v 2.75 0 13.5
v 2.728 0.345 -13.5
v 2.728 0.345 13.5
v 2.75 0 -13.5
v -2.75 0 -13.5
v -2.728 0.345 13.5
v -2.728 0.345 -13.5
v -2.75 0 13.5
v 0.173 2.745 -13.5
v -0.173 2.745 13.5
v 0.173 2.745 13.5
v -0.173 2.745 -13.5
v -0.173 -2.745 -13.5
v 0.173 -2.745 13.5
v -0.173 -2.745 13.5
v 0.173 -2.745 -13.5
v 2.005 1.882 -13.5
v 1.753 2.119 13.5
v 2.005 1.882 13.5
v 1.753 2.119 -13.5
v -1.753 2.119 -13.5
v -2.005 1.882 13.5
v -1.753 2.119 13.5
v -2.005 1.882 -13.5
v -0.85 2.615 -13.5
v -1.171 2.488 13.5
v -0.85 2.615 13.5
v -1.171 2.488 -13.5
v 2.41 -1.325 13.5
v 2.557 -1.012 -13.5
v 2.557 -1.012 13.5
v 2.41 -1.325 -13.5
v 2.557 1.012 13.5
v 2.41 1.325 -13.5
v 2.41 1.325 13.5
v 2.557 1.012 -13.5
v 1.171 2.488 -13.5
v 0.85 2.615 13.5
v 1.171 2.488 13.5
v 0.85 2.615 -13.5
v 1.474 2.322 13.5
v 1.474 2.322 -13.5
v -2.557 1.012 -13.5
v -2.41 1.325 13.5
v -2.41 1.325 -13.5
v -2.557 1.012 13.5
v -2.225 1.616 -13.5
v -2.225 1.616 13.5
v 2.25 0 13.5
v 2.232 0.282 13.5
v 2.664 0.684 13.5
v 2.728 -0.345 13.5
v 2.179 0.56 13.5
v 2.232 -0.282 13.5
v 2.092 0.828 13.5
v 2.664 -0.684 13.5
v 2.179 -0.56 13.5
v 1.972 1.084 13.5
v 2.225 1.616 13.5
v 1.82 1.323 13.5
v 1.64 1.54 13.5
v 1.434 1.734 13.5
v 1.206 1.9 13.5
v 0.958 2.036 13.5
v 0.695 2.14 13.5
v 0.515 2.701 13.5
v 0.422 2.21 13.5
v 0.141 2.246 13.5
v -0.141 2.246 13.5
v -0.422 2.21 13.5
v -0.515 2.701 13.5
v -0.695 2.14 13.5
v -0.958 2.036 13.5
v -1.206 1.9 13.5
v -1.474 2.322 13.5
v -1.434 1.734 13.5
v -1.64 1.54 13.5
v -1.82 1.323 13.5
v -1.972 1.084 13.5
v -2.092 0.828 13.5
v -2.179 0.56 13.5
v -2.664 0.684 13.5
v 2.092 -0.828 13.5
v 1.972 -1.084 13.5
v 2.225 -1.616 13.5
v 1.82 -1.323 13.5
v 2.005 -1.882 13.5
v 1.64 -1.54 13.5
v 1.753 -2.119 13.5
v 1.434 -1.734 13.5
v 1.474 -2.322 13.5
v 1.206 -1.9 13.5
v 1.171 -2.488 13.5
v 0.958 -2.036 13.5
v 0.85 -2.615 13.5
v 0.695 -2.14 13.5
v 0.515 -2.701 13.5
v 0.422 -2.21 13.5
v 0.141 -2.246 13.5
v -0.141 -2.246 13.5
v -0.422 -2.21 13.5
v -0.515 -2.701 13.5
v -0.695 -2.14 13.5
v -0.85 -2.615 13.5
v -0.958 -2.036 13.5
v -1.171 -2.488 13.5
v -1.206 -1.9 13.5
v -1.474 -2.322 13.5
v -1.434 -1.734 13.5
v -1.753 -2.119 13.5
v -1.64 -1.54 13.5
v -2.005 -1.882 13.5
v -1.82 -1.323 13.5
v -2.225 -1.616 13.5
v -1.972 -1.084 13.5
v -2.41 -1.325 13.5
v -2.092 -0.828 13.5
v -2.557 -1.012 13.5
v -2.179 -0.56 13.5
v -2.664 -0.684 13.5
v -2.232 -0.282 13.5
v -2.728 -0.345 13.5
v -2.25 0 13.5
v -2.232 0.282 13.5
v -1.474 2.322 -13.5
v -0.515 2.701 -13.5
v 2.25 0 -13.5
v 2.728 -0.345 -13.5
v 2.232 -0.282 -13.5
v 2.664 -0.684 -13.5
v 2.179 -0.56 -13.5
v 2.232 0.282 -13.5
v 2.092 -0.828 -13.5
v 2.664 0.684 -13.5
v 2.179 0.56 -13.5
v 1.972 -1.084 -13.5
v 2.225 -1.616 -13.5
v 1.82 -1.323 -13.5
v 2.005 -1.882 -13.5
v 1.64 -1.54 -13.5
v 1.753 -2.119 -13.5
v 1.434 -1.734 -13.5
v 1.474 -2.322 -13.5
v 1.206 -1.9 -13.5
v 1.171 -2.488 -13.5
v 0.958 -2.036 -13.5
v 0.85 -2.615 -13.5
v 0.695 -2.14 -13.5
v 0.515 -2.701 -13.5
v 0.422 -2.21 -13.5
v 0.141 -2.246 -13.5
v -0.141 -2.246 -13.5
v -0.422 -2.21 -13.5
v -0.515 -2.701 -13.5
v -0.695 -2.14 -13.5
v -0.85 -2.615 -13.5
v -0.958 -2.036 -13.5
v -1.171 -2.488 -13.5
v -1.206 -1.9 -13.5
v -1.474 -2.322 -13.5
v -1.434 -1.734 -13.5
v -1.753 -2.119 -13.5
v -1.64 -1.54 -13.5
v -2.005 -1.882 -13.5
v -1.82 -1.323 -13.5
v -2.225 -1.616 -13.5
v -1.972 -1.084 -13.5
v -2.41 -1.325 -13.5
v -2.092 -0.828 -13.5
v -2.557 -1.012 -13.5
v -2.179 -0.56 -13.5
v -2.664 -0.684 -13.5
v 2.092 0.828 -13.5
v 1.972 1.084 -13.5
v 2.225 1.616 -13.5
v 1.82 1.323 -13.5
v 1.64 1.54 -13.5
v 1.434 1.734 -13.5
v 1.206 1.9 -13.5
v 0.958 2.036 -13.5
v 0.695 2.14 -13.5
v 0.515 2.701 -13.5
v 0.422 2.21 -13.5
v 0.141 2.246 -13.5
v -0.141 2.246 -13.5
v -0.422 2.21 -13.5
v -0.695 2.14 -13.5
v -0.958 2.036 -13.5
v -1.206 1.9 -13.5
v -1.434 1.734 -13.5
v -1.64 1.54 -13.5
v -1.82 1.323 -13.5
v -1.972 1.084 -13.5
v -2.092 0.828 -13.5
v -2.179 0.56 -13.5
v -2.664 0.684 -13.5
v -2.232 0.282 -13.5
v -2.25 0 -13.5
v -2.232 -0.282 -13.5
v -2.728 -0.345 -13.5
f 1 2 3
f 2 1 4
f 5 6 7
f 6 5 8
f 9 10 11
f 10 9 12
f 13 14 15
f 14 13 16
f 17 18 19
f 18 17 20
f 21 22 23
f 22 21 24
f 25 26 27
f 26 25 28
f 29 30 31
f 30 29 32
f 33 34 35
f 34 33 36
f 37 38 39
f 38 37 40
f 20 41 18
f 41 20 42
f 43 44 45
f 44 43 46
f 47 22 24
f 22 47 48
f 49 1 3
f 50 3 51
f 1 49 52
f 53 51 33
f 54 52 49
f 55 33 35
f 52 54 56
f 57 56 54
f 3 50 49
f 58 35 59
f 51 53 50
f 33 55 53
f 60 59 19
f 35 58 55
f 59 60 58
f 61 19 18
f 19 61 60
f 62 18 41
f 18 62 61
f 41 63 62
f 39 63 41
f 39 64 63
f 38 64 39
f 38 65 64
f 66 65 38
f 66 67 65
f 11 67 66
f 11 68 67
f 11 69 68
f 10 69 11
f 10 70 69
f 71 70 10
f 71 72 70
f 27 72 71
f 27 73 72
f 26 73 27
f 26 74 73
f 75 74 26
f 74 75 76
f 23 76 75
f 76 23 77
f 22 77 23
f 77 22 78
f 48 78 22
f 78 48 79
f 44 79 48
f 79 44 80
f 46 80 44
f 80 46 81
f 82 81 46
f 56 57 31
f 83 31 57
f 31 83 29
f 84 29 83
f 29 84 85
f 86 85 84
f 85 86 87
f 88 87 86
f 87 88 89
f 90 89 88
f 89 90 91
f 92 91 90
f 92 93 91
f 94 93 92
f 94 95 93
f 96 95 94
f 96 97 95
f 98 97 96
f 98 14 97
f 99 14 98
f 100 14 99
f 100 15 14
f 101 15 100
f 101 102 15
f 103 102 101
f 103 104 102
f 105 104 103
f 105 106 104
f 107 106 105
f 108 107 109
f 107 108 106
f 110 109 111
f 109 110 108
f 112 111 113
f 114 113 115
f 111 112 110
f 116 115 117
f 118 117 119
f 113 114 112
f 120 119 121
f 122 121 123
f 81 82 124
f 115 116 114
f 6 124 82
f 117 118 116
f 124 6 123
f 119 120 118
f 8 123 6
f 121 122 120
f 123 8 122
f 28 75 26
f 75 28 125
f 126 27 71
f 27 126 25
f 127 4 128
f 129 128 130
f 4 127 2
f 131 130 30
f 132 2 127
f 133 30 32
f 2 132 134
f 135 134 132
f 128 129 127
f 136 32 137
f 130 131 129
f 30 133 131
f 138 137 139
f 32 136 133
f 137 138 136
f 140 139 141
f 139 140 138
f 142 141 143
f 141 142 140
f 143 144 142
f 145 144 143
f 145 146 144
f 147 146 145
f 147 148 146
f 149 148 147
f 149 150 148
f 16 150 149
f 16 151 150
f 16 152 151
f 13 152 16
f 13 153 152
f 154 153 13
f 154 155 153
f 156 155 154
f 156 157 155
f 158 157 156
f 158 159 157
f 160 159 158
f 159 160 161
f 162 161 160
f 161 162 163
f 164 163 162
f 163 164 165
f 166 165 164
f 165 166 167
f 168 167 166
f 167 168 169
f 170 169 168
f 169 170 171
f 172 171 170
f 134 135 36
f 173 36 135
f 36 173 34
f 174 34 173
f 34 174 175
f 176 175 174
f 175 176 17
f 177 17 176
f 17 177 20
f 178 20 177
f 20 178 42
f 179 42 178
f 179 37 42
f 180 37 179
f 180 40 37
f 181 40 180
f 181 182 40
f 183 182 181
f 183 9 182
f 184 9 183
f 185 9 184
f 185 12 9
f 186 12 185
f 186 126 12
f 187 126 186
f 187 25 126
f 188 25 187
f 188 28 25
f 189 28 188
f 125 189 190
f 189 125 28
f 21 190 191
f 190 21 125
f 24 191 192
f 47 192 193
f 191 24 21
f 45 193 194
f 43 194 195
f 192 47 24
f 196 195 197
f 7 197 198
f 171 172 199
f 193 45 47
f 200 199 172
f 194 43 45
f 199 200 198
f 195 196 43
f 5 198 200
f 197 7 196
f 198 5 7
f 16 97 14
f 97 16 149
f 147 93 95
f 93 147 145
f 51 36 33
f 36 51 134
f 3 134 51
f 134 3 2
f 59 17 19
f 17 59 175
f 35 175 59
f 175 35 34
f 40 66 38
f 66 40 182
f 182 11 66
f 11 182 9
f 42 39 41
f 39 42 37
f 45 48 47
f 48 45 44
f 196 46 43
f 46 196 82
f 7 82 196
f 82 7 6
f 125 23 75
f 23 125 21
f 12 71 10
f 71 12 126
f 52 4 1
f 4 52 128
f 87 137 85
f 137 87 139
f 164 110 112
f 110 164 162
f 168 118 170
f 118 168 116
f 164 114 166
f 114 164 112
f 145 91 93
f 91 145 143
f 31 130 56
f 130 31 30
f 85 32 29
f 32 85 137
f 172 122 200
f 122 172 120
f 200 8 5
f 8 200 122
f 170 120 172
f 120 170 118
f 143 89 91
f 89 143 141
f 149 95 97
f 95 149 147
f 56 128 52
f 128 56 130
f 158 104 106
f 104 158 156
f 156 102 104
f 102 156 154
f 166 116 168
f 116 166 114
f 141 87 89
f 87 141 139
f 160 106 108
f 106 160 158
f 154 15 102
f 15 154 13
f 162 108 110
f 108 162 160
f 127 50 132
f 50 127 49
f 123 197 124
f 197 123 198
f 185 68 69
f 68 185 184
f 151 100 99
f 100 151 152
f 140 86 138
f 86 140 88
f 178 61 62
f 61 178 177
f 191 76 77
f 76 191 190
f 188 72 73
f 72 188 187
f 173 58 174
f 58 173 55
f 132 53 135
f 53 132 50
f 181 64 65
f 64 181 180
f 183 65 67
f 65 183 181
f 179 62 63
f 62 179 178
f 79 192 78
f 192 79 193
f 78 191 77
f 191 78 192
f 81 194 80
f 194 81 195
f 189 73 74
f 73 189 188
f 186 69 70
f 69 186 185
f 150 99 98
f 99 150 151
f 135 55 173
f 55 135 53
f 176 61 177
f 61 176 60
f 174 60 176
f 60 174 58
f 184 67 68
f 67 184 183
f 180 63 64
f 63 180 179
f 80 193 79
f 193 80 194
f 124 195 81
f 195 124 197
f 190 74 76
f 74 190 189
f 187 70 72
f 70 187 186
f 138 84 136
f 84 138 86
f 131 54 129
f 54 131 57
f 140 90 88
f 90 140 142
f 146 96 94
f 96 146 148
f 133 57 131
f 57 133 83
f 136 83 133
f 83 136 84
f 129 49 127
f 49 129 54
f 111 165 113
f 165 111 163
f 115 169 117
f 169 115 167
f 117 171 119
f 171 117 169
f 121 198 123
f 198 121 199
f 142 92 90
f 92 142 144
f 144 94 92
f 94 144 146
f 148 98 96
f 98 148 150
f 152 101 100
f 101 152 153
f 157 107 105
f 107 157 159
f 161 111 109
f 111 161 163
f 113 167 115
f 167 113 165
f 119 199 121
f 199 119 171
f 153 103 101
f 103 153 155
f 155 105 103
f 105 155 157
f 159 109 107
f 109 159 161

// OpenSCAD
$fn = 50;


difference() {
	union() {
		translate(v = [0, 0, -13.5000000000]) {
			cylinder(h = 27, r = 2.7500000000);
		}
	}
	union() {
		translate(v = [0, 0, -100.0000000000]) {
			cylinder(h = 200, r = 2.2500000000);
		}
	}
}
